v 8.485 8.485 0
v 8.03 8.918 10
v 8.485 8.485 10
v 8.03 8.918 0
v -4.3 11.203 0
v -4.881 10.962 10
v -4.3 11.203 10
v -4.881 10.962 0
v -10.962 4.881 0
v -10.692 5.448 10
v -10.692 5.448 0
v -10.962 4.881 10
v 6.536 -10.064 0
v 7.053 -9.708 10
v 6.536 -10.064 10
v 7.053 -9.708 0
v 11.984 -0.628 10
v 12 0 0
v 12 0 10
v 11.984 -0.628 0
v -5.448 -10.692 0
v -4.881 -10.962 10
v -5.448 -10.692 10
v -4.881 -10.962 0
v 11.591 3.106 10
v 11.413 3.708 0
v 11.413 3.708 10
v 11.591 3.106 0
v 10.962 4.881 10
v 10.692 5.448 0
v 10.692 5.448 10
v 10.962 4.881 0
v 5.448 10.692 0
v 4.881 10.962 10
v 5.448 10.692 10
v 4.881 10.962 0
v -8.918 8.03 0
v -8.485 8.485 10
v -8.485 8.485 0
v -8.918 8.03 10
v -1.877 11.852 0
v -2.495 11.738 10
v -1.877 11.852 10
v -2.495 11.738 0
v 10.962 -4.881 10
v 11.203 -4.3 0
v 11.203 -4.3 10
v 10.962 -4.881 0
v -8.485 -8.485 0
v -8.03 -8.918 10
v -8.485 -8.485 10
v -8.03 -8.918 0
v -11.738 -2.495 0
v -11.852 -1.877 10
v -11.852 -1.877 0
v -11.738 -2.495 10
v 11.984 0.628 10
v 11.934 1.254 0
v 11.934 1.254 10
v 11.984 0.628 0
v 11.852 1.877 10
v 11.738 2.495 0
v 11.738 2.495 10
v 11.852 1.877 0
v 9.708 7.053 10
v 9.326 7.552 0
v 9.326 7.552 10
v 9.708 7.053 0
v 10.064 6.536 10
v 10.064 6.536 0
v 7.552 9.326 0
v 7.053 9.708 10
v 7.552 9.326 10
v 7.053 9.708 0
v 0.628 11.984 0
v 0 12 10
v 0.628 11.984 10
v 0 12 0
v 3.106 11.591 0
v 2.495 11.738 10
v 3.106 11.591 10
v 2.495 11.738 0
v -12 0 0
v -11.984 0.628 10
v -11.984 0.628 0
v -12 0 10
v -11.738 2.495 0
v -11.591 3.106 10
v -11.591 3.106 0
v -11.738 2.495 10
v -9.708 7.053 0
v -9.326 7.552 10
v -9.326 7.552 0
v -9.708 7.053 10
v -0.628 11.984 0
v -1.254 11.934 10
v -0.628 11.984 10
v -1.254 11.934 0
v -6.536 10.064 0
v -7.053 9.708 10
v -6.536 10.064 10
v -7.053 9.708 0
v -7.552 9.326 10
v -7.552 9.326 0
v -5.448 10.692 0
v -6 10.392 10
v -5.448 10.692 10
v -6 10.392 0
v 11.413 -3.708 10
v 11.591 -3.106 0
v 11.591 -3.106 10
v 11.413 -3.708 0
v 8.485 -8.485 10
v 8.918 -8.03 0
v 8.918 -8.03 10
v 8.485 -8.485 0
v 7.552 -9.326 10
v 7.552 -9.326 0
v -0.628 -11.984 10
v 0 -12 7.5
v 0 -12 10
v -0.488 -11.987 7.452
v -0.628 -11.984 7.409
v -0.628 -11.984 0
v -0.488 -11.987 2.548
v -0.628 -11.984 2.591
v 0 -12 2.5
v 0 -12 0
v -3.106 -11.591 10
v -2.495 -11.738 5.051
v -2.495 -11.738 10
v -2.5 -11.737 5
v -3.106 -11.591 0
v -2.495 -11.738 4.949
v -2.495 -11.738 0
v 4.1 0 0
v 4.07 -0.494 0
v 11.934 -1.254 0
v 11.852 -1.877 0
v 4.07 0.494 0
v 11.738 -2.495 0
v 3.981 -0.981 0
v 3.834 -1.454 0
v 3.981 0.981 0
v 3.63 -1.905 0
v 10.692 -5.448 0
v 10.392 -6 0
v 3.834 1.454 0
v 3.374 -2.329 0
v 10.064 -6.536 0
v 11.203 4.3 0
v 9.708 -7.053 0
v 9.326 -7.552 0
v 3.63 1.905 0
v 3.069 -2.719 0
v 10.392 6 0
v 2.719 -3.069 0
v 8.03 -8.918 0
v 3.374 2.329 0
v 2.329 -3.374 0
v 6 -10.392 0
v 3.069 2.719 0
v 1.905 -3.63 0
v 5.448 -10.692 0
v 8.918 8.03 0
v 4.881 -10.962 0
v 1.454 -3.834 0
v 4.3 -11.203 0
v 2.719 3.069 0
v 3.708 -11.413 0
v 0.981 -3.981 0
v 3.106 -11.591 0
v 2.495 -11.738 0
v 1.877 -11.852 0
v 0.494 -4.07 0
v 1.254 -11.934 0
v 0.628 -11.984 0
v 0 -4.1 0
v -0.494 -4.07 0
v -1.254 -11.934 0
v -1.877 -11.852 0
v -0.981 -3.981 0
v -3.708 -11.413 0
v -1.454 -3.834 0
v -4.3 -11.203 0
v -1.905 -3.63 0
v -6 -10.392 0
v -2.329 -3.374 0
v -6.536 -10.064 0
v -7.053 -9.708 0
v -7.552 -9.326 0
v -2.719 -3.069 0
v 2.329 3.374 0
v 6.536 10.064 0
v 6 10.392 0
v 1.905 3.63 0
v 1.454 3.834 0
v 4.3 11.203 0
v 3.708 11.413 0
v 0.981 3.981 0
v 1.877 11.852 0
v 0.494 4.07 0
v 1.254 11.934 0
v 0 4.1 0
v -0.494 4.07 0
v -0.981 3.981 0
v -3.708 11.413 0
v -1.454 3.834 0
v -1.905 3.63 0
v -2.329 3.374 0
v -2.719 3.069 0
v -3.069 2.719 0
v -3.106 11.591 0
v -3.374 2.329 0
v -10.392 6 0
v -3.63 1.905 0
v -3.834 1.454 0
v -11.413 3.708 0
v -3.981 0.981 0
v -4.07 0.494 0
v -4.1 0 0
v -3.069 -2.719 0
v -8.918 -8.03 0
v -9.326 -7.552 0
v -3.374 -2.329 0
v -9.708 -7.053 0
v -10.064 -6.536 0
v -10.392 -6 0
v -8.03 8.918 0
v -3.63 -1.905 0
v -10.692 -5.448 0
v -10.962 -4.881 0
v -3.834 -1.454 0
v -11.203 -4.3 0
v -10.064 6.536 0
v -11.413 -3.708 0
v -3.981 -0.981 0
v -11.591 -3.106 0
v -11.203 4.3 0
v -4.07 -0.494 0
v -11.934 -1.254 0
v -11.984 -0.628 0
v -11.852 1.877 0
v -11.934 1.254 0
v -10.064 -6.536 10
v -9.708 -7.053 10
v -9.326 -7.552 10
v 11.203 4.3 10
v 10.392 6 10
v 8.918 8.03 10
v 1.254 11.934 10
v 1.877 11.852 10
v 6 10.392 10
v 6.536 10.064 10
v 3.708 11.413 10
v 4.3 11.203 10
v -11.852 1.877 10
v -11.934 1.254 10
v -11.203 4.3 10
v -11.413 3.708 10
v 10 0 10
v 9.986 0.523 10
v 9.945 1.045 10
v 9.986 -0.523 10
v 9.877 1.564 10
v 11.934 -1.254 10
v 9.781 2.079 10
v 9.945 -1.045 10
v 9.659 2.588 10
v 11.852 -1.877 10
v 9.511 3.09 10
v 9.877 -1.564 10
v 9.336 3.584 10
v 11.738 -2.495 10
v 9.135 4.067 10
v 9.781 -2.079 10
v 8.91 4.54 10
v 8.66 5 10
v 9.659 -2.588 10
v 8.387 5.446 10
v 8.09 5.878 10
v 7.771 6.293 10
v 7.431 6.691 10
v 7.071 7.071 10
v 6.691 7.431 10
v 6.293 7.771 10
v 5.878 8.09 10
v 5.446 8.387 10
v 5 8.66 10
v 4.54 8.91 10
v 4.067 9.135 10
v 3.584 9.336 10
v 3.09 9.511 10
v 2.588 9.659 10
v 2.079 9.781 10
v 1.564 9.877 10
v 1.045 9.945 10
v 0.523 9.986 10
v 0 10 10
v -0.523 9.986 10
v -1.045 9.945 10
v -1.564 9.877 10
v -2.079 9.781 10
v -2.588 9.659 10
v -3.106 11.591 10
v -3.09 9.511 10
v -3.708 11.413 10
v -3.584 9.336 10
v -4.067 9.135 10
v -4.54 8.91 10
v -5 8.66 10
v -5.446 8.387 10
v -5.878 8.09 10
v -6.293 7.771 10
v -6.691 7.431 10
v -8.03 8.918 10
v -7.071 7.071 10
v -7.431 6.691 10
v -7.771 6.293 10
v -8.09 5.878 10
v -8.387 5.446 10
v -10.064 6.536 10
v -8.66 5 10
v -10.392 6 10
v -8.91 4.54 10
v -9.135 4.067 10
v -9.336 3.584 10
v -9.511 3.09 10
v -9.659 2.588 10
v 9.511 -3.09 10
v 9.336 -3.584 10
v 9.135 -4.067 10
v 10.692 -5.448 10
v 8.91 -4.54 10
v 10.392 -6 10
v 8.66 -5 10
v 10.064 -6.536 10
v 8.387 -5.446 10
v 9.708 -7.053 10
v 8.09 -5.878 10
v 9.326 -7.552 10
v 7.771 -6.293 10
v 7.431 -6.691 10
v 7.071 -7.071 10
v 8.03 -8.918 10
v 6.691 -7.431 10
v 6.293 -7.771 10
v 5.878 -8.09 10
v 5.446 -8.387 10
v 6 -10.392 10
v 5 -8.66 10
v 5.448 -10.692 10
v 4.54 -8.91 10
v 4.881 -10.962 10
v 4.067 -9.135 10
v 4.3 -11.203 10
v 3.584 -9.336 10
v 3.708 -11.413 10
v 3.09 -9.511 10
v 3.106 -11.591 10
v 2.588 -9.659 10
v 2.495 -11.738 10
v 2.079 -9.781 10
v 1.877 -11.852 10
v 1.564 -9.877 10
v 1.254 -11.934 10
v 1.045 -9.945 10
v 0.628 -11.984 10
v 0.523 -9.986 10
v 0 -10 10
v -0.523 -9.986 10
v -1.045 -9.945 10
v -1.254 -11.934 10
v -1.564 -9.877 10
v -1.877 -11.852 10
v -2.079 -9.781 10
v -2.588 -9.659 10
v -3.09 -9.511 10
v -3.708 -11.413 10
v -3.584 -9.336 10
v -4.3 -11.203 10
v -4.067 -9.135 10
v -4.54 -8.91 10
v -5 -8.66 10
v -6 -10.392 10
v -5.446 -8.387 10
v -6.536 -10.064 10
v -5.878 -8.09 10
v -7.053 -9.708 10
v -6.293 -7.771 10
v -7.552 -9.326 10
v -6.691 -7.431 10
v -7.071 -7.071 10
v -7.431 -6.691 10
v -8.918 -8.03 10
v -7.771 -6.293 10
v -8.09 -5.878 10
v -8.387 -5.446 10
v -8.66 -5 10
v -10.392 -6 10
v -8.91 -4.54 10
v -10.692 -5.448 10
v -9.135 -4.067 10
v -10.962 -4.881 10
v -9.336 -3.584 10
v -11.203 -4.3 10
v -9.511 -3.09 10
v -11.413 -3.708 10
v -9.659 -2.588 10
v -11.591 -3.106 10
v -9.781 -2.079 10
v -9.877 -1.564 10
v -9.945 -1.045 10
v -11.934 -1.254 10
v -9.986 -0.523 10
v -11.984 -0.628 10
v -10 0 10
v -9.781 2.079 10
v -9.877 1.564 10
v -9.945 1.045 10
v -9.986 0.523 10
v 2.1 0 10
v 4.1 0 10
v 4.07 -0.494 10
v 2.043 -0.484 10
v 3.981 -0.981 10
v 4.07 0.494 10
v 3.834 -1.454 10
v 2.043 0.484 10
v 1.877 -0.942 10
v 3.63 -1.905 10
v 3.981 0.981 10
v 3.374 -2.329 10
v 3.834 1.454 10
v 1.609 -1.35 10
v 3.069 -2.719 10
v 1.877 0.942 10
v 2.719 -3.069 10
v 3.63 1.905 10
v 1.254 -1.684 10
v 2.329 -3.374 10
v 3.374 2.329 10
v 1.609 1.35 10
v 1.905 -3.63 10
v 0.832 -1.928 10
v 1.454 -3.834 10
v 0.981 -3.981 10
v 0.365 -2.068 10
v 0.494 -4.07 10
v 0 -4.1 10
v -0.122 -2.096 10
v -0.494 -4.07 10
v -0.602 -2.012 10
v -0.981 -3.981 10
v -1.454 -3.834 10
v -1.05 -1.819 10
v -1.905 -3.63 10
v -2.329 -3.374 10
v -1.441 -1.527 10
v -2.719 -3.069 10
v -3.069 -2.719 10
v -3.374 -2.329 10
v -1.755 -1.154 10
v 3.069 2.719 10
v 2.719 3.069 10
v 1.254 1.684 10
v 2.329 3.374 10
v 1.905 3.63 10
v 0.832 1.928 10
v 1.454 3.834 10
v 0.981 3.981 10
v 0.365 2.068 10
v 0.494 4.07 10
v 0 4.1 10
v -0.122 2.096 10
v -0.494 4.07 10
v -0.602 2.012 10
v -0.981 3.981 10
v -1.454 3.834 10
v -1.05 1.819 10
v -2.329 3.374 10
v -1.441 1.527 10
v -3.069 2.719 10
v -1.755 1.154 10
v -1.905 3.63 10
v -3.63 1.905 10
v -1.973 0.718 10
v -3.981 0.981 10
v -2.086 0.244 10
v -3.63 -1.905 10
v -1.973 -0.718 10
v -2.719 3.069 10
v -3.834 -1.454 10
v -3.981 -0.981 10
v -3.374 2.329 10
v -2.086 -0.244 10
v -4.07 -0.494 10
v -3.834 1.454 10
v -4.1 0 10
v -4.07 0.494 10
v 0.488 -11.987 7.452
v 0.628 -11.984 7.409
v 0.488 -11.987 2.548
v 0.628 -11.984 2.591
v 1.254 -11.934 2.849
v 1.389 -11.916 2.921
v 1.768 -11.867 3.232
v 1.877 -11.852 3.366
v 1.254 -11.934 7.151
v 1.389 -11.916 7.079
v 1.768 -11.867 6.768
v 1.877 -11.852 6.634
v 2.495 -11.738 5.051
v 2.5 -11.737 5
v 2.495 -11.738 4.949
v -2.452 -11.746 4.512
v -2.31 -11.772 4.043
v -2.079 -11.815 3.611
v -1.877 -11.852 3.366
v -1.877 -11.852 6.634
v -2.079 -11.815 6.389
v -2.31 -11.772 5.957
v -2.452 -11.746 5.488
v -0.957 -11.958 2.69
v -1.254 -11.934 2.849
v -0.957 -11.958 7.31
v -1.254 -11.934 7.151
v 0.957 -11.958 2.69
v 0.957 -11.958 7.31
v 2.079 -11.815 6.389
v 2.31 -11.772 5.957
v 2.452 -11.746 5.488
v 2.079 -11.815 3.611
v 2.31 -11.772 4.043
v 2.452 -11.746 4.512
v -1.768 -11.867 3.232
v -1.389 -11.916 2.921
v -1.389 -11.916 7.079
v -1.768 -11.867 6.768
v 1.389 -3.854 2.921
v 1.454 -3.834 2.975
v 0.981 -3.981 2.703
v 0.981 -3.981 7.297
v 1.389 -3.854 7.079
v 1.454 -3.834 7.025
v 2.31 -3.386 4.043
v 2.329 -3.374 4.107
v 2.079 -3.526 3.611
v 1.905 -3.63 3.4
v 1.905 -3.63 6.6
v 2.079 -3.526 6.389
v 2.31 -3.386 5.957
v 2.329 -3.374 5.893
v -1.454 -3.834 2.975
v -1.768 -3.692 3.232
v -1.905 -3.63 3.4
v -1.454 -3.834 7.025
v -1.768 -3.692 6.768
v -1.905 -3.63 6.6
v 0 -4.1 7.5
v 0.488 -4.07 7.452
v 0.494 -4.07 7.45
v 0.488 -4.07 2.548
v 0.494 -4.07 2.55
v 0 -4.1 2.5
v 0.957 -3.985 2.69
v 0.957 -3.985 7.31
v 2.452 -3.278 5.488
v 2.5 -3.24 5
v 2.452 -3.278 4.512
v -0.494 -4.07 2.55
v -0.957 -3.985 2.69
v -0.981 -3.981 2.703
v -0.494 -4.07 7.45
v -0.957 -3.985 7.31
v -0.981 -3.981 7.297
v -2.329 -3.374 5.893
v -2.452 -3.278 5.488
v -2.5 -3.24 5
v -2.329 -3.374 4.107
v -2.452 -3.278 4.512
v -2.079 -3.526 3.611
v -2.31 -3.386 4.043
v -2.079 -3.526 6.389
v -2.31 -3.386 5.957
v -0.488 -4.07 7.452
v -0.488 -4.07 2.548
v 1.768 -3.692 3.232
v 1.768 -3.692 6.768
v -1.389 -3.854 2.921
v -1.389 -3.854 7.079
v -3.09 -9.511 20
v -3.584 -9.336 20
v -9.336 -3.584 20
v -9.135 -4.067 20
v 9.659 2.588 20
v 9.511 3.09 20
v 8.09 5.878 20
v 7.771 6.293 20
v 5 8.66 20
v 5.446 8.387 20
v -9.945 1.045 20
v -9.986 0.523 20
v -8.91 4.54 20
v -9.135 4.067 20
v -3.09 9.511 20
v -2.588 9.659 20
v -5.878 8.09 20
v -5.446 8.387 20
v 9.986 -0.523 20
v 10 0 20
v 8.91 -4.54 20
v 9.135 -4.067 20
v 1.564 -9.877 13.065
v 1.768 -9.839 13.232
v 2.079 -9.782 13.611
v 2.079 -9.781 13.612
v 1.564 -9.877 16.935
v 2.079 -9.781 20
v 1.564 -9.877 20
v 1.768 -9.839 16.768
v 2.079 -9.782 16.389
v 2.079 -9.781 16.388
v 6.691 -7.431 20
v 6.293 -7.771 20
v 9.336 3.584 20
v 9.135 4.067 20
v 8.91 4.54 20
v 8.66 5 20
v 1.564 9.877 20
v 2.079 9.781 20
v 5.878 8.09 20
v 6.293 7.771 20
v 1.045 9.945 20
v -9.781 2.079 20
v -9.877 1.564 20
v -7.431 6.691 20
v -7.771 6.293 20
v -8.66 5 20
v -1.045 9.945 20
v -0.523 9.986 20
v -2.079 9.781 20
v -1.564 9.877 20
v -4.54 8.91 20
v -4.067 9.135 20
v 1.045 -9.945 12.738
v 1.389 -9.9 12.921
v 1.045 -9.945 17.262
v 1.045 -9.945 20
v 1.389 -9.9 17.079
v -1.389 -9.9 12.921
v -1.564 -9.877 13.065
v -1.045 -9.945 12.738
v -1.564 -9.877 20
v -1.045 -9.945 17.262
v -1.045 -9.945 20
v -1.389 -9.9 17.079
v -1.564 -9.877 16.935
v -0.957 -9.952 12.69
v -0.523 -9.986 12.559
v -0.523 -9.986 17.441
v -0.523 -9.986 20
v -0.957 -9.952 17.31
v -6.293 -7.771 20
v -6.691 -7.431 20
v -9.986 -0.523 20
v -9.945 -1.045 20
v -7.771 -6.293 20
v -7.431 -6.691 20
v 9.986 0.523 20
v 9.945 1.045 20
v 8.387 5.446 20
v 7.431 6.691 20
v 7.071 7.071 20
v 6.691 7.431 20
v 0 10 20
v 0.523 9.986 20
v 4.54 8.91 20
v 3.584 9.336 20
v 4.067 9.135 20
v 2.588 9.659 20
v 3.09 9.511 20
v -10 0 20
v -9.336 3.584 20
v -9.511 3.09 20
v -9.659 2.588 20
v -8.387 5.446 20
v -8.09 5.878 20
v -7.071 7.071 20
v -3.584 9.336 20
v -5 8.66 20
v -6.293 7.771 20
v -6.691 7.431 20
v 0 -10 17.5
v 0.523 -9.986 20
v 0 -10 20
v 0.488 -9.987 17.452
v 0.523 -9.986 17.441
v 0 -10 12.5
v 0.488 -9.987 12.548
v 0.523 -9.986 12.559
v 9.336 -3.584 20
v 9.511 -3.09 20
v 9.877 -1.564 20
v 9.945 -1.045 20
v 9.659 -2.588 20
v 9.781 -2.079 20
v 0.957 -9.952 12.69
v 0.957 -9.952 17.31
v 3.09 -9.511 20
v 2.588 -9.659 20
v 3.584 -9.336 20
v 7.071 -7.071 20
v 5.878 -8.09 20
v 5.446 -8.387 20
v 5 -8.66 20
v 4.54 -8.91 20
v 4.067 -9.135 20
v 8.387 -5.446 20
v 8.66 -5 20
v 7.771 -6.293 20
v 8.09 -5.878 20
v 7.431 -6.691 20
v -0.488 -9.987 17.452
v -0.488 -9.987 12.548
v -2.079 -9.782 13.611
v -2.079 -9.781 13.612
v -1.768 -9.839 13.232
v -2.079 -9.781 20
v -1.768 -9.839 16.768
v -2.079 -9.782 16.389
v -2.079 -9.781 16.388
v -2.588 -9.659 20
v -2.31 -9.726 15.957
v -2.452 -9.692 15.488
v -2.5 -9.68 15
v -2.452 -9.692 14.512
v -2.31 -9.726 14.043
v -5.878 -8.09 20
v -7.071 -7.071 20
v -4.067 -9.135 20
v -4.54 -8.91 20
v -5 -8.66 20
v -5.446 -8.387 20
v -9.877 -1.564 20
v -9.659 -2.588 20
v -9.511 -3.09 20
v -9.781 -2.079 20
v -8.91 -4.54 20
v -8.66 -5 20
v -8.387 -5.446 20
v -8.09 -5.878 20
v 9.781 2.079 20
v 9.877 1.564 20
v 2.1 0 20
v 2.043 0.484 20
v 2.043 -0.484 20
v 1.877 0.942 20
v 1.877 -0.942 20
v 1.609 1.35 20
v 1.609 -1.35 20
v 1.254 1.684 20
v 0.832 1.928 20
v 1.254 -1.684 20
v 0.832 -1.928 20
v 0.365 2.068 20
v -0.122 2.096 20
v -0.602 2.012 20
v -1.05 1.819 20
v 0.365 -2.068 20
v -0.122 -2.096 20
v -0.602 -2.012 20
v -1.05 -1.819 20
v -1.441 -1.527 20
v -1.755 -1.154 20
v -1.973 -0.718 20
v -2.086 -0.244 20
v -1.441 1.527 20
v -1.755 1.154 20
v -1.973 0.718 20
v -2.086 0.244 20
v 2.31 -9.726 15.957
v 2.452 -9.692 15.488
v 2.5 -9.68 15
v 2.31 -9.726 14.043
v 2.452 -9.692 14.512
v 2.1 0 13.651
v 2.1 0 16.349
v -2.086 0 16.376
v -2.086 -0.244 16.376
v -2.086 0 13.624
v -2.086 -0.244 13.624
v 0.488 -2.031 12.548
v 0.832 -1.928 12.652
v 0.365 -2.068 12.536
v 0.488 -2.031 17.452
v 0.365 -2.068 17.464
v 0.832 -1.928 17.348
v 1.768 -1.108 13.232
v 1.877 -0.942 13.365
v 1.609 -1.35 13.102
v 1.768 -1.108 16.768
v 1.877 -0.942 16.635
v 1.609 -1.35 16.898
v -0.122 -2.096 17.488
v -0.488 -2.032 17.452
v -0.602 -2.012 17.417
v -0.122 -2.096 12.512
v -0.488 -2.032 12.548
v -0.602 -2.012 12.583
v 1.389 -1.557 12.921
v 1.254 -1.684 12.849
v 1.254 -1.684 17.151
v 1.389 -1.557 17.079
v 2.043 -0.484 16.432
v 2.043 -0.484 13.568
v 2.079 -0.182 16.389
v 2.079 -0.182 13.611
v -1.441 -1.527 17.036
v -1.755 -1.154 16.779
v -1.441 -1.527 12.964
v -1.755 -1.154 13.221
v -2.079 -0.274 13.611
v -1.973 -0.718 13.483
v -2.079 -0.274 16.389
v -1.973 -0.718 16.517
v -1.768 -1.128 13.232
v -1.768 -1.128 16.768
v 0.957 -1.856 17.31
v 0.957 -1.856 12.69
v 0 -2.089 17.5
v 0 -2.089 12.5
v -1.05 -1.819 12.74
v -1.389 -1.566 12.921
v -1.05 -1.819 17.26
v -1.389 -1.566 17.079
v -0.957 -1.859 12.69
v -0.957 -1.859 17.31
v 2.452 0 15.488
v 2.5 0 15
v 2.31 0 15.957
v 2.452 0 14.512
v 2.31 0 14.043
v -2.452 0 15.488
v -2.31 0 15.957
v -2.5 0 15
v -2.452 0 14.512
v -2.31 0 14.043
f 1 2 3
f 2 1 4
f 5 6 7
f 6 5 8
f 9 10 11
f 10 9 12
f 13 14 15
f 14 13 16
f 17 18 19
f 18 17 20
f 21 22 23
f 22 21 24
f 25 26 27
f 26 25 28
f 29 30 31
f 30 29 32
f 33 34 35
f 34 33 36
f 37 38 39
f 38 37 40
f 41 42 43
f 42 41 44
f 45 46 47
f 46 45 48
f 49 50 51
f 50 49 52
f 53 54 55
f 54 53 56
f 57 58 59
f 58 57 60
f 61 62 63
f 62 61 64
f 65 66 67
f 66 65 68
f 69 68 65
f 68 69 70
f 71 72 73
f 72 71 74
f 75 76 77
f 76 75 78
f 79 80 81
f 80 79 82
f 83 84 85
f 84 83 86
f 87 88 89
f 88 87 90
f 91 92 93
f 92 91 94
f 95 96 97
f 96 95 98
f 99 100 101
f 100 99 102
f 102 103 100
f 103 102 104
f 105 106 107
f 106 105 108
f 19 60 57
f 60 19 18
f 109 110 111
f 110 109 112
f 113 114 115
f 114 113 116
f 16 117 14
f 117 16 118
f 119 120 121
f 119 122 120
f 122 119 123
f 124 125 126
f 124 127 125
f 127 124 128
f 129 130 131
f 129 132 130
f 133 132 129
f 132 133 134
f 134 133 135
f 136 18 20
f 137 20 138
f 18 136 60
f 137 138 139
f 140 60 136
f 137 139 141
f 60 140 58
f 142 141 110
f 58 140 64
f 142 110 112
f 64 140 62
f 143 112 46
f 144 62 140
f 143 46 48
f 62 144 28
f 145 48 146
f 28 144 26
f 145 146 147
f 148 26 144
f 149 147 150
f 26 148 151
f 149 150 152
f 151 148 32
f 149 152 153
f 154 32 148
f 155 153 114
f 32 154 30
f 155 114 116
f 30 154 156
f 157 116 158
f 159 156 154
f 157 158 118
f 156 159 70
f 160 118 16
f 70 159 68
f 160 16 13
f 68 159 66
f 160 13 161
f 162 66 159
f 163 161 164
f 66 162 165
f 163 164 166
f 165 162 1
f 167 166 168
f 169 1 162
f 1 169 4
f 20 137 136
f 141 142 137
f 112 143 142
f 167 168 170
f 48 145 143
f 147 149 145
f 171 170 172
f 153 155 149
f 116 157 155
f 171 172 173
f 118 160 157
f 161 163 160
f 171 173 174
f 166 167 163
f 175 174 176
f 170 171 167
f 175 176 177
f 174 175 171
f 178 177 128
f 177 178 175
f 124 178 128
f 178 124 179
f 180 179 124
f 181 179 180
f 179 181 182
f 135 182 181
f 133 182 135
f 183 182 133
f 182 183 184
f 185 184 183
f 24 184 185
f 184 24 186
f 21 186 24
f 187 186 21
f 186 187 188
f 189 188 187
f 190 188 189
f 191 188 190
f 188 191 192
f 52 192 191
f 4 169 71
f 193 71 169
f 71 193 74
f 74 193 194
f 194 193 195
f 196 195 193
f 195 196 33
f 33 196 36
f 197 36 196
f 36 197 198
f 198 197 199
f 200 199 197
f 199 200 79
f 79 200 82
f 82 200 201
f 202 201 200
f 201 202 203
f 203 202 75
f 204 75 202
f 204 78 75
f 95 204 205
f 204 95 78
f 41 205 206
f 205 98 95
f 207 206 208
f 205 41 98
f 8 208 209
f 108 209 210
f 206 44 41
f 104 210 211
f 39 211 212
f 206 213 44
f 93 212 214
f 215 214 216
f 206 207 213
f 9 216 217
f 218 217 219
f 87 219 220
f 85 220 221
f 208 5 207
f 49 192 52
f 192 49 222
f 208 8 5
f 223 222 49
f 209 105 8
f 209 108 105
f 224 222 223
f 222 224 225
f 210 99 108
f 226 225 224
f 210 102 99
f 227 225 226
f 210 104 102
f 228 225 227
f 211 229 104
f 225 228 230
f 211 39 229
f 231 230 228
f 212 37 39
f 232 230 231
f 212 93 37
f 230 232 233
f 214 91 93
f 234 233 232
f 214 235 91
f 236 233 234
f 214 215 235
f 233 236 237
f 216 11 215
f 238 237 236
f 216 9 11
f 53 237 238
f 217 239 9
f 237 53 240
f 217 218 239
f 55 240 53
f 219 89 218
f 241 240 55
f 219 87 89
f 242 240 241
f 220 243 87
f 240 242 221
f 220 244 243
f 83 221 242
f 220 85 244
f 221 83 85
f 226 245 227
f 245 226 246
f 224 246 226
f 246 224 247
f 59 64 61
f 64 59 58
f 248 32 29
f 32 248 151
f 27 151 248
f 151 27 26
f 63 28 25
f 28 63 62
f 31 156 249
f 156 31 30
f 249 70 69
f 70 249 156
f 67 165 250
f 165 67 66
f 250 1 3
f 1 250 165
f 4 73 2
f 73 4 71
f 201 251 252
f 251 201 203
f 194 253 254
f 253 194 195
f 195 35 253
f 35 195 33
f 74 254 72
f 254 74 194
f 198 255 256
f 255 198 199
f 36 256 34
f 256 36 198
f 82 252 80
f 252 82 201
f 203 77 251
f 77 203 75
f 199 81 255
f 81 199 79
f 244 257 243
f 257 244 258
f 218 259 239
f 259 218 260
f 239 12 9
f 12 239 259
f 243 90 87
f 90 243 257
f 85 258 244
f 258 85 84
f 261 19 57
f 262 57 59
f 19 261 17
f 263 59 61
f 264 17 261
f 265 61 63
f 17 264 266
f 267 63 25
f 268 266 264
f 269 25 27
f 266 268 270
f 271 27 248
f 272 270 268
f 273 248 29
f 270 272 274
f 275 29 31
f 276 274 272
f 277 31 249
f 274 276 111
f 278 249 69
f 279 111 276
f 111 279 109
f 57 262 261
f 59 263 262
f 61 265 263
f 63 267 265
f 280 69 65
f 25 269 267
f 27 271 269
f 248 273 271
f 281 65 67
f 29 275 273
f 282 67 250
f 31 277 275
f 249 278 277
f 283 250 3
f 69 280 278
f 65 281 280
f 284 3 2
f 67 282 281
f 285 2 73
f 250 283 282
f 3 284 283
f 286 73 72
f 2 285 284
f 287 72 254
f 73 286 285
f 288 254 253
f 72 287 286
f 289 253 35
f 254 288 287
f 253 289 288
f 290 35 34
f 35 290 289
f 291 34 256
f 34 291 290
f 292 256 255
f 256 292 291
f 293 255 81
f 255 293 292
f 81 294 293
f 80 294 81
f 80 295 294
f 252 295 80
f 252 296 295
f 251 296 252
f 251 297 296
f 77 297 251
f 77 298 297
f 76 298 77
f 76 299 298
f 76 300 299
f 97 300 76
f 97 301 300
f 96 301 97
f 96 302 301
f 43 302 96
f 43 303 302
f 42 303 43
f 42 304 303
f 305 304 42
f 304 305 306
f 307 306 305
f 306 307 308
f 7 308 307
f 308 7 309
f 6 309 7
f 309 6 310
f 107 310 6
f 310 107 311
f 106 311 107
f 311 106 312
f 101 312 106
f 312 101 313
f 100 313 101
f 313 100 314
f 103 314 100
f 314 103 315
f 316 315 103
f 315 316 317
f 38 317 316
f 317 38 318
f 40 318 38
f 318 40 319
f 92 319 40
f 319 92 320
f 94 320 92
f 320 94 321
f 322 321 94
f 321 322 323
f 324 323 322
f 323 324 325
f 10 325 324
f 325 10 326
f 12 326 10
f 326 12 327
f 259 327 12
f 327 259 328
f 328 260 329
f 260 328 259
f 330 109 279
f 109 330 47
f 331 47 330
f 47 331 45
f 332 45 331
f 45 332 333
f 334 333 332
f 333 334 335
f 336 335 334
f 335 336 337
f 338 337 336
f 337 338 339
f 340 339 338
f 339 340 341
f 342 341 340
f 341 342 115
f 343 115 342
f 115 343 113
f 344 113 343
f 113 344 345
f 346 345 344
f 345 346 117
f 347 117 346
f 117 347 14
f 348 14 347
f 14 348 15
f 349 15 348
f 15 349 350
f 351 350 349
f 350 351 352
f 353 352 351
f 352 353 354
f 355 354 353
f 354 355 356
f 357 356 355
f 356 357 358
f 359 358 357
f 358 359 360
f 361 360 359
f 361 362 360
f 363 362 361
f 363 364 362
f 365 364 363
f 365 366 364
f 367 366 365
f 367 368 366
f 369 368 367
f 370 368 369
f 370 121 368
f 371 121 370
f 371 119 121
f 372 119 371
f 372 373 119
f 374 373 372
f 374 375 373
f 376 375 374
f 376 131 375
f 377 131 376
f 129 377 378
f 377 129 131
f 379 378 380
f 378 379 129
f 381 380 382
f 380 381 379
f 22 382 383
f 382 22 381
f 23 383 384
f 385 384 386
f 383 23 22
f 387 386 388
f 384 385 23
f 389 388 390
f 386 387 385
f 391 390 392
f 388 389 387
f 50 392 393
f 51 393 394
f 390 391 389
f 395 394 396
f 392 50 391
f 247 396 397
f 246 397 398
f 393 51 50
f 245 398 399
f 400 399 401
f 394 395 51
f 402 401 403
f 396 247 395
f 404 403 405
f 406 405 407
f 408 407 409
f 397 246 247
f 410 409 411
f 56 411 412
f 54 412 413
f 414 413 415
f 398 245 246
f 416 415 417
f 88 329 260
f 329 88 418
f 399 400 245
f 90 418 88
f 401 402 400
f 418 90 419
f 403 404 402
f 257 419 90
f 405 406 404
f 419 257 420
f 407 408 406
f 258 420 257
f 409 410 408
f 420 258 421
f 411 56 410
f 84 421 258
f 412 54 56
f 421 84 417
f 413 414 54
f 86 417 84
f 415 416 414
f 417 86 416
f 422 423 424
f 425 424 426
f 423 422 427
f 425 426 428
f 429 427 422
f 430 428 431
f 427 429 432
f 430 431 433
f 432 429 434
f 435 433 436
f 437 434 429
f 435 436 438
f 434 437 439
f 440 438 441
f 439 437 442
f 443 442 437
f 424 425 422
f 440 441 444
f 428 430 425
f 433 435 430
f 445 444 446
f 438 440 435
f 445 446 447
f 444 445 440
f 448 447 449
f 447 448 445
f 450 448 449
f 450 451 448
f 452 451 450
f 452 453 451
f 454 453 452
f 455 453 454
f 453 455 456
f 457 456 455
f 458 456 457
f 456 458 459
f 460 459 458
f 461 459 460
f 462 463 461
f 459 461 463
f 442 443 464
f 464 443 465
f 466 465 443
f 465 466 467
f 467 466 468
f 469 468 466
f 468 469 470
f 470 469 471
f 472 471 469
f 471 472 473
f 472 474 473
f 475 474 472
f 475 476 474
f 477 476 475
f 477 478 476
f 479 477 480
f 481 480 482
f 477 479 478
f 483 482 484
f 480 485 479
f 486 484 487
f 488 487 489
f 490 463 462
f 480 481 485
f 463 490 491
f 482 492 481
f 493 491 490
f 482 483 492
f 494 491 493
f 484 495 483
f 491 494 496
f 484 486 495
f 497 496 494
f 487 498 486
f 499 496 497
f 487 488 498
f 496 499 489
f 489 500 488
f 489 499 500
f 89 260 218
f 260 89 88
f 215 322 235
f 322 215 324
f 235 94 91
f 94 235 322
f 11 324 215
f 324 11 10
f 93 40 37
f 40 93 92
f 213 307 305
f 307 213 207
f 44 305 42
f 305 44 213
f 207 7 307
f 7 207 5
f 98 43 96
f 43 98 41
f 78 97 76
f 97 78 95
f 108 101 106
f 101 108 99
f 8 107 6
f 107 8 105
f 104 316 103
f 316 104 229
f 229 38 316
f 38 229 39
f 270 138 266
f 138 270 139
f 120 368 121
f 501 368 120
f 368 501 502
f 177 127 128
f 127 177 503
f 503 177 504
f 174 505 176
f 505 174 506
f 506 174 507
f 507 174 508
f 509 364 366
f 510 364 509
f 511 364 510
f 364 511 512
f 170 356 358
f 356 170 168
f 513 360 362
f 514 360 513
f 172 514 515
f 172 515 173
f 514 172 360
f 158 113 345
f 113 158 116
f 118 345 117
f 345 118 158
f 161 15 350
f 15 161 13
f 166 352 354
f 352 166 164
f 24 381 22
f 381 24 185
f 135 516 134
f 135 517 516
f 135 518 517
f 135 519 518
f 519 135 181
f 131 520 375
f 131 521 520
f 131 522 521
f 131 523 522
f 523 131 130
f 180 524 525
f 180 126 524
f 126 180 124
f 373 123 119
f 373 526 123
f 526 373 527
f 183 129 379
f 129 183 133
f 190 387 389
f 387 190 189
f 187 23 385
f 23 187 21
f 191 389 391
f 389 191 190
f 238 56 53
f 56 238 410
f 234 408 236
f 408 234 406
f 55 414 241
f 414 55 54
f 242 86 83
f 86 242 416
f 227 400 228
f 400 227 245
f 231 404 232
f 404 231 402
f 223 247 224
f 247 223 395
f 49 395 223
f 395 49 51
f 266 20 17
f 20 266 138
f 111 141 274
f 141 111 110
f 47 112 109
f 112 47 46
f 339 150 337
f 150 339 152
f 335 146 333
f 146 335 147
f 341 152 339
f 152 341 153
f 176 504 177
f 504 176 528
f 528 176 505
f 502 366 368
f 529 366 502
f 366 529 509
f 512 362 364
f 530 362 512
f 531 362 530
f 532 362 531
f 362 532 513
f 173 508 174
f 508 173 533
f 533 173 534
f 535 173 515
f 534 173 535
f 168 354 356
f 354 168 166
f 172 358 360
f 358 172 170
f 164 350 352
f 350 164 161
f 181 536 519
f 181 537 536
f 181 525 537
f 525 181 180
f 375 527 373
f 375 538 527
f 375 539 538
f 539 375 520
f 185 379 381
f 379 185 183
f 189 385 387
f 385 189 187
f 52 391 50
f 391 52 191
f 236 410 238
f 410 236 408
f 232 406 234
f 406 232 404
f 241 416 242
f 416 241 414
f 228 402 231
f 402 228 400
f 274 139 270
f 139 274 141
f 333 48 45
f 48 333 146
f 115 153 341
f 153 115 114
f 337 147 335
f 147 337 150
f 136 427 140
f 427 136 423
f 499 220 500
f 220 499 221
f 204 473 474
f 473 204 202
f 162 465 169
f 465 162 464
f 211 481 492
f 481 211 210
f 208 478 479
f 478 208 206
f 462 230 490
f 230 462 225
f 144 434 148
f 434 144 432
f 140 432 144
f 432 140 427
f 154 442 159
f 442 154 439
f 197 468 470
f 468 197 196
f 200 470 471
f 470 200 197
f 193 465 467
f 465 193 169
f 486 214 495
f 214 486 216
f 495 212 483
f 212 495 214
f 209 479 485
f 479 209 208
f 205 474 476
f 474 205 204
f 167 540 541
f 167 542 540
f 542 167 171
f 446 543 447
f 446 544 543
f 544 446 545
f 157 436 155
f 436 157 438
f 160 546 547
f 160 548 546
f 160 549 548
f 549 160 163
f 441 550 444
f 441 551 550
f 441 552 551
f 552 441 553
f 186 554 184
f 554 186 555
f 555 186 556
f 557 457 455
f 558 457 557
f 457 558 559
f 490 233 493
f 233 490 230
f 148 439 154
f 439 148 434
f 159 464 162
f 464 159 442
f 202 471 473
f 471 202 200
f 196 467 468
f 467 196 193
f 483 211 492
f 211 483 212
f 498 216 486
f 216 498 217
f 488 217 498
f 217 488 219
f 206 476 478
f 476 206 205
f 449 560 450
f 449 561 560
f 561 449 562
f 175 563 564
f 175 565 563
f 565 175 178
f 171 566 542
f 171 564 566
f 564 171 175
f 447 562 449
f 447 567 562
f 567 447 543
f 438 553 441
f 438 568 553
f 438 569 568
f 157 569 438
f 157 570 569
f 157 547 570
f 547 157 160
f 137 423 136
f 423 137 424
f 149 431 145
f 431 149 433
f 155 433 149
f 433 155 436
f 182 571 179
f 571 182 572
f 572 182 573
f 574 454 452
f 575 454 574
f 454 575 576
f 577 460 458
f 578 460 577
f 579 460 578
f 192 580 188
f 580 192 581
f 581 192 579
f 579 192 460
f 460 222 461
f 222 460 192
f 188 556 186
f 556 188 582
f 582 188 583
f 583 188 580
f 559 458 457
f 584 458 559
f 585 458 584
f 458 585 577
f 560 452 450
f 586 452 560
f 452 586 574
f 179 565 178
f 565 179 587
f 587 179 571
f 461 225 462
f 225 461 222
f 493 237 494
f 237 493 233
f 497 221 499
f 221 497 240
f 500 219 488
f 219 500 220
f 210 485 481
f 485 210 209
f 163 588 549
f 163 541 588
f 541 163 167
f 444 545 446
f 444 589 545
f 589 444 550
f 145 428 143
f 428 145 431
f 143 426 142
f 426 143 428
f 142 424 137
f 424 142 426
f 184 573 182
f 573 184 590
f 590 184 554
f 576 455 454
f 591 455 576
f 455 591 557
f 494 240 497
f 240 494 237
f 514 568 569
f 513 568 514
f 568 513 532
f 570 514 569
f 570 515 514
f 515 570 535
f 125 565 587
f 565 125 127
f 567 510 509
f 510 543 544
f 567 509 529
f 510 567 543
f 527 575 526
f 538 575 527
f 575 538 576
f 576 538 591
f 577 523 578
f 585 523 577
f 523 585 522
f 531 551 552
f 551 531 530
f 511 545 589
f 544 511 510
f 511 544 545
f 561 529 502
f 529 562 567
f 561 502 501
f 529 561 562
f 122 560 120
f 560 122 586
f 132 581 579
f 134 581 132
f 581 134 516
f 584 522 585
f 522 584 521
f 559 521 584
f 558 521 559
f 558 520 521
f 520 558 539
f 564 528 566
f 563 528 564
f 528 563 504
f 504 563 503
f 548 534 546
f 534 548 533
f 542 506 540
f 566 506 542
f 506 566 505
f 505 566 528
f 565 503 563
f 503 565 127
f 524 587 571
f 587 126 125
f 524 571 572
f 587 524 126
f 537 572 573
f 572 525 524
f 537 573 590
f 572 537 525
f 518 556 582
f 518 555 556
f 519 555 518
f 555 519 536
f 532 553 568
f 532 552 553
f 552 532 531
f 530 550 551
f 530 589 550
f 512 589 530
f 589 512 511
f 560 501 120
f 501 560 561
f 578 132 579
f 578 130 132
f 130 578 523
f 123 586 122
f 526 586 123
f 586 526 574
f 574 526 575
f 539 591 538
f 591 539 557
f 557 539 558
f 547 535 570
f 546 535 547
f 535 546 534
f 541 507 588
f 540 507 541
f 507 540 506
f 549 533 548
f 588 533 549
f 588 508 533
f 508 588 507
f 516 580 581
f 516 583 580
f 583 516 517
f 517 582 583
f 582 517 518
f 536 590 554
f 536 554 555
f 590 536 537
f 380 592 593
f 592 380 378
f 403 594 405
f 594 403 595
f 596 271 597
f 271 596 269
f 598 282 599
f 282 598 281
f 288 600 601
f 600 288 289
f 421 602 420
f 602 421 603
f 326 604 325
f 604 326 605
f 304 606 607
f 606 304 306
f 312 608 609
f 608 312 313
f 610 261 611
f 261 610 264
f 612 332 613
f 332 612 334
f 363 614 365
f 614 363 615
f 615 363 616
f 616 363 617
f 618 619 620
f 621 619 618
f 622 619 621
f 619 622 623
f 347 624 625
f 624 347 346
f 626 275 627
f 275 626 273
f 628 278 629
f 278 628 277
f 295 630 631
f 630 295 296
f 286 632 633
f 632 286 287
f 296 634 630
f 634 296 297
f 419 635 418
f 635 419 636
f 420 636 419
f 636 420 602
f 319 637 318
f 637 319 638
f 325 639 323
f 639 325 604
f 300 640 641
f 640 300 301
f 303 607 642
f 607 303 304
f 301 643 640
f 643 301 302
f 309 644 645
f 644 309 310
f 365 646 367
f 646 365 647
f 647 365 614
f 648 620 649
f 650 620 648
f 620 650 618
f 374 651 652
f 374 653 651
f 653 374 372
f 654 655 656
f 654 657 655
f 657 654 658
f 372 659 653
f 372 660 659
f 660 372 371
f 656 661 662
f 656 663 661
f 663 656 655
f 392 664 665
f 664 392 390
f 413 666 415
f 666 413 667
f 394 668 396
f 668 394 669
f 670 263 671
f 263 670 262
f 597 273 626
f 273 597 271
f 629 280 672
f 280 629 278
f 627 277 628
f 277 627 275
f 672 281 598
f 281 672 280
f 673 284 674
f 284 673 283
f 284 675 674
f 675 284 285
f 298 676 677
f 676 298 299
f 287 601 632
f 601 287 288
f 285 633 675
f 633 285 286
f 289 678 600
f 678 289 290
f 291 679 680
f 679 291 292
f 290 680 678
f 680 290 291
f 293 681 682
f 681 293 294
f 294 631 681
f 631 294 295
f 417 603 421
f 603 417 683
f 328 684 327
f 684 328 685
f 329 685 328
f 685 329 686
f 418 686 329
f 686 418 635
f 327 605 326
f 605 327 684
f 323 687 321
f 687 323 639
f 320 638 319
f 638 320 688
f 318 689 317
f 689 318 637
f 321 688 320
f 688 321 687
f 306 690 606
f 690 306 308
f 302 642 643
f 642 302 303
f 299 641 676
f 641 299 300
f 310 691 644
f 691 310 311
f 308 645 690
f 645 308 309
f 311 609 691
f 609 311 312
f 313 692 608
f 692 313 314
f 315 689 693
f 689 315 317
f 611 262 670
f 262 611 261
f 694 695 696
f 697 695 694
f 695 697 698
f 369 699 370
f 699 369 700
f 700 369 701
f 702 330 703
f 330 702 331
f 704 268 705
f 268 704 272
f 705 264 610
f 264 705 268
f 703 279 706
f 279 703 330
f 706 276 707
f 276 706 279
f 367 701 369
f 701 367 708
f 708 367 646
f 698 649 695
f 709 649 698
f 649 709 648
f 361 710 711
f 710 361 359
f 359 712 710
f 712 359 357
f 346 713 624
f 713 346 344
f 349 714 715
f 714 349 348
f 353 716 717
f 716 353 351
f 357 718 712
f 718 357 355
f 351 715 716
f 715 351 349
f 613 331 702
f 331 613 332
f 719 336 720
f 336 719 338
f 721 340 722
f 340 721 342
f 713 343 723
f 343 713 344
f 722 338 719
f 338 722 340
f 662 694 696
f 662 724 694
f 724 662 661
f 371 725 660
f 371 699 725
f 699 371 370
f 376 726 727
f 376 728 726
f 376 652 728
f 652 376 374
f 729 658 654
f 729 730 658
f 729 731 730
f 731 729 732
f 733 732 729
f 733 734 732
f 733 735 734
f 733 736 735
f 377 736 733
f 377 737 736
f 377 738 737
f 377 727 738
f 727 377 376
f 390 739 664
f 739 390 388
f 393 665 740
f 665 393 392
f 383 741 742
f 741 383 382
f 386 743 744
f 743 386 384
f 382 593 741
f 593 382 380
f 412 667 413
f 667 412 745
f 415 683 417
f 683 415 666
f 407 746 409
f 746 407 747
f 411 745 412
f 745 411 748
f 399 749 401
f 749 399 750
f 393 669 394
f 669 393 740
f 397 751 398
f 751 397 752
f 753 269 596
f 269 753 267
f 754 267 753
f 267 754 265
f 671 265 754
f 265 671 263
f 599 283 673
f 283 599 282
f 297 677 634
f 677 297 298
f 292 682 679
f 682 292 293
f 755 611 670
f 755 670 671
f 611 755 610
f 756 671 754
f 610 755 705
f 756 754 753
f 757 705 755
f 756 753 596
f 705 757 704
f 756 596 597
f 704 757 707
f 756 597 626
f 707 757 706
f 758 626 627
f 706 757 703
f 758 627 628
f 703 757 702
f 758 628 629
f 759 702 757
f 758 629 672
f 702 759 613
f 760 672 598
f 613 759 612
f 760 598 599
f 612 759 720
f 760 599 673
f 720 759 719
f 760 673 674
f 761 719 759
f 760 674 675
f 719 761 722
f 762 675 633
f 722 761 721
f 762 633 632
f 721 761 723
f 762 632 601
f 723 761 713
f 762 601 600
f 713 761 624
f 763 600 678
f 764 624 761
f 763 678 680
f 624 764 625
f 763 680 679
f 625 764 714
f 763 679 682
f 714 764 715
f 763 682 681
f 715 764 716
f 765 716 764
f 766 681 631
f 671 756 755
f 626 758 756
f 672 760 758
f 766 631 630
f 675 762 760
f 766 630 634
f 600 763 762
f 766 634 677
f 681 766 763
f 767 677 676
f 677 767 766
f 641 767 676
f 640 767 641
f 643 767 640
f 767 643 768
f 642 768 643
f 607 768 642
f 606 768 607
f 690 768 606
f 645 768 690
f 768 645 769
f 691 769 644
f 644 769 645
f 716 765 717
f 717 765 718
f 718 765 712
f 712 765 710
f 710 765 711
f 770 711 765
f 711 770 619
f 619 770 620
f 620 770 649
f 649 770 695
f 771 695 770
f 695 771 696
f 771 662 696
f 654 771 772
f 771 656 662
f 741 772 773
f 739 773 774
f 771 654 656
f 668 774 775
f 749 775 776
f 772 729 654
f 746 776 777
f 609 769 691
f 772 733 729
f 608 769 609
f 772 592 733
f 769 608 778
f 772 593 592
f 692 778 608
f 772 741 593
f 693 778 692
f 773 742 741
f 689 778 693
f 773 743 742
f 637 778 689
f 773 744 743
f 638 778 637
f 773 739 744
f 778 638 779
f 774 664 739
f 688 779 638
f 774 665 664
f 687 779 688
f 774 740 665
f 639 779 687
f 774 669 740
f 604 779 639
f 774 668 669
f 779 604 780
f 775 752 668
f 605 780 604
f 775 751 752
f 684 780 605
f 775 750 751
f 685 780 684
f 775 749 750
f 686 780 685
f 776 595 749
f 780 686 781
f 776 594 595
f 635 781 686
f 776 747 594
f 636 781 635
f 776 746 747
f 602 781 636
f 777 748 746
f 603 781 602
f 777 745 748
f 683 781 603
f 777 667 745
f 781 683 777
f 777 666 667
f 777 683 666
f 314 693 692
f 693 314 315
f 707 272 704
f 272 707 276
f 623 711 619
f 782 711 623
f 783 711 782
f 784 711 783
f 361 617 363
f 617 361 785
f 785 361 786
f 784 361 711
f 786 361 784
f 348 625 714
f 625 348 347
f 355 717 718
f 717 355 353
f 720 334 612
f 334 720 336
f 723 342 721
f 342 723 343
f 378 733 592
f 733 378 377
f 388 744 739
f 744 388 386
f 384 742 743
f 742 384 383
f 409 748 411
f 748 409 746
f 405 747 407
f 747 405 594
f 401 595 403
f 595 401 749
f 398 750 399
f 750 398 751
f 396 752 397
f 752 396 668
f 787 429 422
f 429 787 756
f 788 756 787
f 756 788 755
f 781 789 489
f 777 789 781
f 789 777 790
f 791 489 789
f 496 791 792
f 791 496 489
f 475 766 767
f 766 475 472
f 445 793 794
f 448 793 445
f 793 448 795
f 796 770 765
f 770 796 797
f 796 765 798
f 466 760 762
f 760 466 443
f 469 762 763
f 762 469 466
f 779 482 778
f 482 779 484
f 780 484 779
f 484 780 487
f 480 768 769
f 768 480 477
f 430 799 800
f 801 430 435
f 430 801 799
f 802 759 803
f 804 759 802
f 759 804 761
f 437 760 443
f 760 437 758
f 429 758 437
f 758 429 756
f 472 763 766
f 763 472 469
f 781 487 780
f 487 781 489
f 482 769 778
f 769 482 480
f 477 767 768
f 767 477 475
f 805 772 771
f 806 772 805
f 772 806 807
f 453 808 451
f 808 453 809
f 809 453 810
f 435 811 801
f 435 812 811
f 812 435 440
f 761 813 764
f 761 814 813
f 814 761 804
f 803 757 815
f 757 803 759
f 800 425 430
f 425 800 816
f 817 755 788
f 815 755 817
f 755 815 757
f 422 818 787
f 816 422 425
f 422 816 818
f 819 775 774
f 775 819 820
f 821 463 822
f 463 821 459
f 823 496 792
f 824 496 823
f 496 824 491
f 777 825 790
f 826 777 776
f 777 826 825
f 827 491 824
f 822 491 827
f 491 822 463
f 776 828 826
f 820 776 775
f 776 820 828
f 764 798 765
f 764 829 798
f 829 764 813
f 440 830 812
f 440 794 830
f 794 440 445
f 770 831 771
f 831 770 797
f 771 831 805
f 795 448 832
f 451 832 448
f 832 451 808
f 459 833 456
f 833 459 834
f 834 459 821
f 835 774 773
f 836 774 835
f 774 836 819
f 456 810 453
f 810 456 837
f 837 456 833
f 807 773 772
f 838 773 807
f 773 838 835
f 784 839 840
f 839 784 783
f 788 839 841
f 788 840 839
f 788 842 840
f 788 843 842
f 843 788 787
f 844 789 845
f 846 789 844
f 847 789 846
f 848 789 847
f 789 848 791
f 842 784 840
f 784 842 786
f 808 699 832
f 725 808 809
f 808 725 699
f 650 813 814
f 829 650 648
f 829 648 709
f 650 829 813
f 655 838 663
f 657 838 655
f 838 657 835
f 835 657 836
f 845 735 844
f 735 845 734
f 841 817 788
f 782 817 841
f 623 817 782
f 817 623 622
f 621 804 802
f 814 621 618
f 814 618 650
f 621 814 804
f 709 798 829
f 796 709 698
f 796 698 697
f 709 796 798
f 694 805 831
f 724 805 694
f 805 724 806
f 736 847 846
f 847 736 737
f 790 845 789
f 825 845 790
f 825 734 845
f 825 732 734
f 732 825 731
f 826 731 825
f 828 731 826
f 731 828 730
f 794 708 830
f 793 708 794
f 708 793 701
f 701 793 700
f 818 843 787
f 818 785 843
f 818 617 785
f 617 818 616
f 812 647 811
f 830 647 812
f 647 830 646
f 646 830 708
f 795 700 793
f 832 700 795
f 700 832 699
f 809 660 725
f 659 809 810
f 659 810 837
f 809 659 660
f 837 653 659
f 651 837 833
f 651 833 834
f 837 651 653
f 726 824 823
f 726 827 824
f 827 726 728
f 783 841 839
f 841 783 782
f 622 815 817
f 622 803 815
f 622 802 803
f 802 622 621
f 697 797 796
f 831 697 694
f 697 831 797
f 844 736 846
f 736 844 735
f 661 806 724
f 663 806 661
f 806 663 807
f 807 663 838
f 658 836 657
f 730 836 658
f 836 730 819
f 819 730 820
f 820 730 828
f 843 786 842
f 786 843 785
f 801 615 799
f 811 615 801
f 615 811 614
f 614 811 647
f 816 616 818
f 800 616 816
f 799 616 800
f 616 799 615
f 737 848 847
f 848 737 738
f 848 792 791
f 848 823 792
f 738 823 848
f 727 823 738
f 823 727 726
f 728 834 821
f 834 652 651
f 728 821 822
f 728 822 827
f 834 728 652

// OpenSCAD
$fa = 3;
$fs = .5;

union() {
    difference() {
        cylinder(h = 10, r = 12);
        cylinder(h = 10, r = 4.1);
        translate([0, 0, 5]) {
            rotate([90, 0, 0]) {
                cylinder(h = 15, r = 2.5);
            }
        }
    }

    translate([0, 0, 10]) {
        difference() {
            cylinder(h = 10, r = 10);
            cylinder(h = 10, r = 2.1);
            translate([0, 0, 5]) {
                rotate([90, 0, 0]) {
                    cylinder(h = 15, r = 2.5);
                }
            }
        }
    }
}
